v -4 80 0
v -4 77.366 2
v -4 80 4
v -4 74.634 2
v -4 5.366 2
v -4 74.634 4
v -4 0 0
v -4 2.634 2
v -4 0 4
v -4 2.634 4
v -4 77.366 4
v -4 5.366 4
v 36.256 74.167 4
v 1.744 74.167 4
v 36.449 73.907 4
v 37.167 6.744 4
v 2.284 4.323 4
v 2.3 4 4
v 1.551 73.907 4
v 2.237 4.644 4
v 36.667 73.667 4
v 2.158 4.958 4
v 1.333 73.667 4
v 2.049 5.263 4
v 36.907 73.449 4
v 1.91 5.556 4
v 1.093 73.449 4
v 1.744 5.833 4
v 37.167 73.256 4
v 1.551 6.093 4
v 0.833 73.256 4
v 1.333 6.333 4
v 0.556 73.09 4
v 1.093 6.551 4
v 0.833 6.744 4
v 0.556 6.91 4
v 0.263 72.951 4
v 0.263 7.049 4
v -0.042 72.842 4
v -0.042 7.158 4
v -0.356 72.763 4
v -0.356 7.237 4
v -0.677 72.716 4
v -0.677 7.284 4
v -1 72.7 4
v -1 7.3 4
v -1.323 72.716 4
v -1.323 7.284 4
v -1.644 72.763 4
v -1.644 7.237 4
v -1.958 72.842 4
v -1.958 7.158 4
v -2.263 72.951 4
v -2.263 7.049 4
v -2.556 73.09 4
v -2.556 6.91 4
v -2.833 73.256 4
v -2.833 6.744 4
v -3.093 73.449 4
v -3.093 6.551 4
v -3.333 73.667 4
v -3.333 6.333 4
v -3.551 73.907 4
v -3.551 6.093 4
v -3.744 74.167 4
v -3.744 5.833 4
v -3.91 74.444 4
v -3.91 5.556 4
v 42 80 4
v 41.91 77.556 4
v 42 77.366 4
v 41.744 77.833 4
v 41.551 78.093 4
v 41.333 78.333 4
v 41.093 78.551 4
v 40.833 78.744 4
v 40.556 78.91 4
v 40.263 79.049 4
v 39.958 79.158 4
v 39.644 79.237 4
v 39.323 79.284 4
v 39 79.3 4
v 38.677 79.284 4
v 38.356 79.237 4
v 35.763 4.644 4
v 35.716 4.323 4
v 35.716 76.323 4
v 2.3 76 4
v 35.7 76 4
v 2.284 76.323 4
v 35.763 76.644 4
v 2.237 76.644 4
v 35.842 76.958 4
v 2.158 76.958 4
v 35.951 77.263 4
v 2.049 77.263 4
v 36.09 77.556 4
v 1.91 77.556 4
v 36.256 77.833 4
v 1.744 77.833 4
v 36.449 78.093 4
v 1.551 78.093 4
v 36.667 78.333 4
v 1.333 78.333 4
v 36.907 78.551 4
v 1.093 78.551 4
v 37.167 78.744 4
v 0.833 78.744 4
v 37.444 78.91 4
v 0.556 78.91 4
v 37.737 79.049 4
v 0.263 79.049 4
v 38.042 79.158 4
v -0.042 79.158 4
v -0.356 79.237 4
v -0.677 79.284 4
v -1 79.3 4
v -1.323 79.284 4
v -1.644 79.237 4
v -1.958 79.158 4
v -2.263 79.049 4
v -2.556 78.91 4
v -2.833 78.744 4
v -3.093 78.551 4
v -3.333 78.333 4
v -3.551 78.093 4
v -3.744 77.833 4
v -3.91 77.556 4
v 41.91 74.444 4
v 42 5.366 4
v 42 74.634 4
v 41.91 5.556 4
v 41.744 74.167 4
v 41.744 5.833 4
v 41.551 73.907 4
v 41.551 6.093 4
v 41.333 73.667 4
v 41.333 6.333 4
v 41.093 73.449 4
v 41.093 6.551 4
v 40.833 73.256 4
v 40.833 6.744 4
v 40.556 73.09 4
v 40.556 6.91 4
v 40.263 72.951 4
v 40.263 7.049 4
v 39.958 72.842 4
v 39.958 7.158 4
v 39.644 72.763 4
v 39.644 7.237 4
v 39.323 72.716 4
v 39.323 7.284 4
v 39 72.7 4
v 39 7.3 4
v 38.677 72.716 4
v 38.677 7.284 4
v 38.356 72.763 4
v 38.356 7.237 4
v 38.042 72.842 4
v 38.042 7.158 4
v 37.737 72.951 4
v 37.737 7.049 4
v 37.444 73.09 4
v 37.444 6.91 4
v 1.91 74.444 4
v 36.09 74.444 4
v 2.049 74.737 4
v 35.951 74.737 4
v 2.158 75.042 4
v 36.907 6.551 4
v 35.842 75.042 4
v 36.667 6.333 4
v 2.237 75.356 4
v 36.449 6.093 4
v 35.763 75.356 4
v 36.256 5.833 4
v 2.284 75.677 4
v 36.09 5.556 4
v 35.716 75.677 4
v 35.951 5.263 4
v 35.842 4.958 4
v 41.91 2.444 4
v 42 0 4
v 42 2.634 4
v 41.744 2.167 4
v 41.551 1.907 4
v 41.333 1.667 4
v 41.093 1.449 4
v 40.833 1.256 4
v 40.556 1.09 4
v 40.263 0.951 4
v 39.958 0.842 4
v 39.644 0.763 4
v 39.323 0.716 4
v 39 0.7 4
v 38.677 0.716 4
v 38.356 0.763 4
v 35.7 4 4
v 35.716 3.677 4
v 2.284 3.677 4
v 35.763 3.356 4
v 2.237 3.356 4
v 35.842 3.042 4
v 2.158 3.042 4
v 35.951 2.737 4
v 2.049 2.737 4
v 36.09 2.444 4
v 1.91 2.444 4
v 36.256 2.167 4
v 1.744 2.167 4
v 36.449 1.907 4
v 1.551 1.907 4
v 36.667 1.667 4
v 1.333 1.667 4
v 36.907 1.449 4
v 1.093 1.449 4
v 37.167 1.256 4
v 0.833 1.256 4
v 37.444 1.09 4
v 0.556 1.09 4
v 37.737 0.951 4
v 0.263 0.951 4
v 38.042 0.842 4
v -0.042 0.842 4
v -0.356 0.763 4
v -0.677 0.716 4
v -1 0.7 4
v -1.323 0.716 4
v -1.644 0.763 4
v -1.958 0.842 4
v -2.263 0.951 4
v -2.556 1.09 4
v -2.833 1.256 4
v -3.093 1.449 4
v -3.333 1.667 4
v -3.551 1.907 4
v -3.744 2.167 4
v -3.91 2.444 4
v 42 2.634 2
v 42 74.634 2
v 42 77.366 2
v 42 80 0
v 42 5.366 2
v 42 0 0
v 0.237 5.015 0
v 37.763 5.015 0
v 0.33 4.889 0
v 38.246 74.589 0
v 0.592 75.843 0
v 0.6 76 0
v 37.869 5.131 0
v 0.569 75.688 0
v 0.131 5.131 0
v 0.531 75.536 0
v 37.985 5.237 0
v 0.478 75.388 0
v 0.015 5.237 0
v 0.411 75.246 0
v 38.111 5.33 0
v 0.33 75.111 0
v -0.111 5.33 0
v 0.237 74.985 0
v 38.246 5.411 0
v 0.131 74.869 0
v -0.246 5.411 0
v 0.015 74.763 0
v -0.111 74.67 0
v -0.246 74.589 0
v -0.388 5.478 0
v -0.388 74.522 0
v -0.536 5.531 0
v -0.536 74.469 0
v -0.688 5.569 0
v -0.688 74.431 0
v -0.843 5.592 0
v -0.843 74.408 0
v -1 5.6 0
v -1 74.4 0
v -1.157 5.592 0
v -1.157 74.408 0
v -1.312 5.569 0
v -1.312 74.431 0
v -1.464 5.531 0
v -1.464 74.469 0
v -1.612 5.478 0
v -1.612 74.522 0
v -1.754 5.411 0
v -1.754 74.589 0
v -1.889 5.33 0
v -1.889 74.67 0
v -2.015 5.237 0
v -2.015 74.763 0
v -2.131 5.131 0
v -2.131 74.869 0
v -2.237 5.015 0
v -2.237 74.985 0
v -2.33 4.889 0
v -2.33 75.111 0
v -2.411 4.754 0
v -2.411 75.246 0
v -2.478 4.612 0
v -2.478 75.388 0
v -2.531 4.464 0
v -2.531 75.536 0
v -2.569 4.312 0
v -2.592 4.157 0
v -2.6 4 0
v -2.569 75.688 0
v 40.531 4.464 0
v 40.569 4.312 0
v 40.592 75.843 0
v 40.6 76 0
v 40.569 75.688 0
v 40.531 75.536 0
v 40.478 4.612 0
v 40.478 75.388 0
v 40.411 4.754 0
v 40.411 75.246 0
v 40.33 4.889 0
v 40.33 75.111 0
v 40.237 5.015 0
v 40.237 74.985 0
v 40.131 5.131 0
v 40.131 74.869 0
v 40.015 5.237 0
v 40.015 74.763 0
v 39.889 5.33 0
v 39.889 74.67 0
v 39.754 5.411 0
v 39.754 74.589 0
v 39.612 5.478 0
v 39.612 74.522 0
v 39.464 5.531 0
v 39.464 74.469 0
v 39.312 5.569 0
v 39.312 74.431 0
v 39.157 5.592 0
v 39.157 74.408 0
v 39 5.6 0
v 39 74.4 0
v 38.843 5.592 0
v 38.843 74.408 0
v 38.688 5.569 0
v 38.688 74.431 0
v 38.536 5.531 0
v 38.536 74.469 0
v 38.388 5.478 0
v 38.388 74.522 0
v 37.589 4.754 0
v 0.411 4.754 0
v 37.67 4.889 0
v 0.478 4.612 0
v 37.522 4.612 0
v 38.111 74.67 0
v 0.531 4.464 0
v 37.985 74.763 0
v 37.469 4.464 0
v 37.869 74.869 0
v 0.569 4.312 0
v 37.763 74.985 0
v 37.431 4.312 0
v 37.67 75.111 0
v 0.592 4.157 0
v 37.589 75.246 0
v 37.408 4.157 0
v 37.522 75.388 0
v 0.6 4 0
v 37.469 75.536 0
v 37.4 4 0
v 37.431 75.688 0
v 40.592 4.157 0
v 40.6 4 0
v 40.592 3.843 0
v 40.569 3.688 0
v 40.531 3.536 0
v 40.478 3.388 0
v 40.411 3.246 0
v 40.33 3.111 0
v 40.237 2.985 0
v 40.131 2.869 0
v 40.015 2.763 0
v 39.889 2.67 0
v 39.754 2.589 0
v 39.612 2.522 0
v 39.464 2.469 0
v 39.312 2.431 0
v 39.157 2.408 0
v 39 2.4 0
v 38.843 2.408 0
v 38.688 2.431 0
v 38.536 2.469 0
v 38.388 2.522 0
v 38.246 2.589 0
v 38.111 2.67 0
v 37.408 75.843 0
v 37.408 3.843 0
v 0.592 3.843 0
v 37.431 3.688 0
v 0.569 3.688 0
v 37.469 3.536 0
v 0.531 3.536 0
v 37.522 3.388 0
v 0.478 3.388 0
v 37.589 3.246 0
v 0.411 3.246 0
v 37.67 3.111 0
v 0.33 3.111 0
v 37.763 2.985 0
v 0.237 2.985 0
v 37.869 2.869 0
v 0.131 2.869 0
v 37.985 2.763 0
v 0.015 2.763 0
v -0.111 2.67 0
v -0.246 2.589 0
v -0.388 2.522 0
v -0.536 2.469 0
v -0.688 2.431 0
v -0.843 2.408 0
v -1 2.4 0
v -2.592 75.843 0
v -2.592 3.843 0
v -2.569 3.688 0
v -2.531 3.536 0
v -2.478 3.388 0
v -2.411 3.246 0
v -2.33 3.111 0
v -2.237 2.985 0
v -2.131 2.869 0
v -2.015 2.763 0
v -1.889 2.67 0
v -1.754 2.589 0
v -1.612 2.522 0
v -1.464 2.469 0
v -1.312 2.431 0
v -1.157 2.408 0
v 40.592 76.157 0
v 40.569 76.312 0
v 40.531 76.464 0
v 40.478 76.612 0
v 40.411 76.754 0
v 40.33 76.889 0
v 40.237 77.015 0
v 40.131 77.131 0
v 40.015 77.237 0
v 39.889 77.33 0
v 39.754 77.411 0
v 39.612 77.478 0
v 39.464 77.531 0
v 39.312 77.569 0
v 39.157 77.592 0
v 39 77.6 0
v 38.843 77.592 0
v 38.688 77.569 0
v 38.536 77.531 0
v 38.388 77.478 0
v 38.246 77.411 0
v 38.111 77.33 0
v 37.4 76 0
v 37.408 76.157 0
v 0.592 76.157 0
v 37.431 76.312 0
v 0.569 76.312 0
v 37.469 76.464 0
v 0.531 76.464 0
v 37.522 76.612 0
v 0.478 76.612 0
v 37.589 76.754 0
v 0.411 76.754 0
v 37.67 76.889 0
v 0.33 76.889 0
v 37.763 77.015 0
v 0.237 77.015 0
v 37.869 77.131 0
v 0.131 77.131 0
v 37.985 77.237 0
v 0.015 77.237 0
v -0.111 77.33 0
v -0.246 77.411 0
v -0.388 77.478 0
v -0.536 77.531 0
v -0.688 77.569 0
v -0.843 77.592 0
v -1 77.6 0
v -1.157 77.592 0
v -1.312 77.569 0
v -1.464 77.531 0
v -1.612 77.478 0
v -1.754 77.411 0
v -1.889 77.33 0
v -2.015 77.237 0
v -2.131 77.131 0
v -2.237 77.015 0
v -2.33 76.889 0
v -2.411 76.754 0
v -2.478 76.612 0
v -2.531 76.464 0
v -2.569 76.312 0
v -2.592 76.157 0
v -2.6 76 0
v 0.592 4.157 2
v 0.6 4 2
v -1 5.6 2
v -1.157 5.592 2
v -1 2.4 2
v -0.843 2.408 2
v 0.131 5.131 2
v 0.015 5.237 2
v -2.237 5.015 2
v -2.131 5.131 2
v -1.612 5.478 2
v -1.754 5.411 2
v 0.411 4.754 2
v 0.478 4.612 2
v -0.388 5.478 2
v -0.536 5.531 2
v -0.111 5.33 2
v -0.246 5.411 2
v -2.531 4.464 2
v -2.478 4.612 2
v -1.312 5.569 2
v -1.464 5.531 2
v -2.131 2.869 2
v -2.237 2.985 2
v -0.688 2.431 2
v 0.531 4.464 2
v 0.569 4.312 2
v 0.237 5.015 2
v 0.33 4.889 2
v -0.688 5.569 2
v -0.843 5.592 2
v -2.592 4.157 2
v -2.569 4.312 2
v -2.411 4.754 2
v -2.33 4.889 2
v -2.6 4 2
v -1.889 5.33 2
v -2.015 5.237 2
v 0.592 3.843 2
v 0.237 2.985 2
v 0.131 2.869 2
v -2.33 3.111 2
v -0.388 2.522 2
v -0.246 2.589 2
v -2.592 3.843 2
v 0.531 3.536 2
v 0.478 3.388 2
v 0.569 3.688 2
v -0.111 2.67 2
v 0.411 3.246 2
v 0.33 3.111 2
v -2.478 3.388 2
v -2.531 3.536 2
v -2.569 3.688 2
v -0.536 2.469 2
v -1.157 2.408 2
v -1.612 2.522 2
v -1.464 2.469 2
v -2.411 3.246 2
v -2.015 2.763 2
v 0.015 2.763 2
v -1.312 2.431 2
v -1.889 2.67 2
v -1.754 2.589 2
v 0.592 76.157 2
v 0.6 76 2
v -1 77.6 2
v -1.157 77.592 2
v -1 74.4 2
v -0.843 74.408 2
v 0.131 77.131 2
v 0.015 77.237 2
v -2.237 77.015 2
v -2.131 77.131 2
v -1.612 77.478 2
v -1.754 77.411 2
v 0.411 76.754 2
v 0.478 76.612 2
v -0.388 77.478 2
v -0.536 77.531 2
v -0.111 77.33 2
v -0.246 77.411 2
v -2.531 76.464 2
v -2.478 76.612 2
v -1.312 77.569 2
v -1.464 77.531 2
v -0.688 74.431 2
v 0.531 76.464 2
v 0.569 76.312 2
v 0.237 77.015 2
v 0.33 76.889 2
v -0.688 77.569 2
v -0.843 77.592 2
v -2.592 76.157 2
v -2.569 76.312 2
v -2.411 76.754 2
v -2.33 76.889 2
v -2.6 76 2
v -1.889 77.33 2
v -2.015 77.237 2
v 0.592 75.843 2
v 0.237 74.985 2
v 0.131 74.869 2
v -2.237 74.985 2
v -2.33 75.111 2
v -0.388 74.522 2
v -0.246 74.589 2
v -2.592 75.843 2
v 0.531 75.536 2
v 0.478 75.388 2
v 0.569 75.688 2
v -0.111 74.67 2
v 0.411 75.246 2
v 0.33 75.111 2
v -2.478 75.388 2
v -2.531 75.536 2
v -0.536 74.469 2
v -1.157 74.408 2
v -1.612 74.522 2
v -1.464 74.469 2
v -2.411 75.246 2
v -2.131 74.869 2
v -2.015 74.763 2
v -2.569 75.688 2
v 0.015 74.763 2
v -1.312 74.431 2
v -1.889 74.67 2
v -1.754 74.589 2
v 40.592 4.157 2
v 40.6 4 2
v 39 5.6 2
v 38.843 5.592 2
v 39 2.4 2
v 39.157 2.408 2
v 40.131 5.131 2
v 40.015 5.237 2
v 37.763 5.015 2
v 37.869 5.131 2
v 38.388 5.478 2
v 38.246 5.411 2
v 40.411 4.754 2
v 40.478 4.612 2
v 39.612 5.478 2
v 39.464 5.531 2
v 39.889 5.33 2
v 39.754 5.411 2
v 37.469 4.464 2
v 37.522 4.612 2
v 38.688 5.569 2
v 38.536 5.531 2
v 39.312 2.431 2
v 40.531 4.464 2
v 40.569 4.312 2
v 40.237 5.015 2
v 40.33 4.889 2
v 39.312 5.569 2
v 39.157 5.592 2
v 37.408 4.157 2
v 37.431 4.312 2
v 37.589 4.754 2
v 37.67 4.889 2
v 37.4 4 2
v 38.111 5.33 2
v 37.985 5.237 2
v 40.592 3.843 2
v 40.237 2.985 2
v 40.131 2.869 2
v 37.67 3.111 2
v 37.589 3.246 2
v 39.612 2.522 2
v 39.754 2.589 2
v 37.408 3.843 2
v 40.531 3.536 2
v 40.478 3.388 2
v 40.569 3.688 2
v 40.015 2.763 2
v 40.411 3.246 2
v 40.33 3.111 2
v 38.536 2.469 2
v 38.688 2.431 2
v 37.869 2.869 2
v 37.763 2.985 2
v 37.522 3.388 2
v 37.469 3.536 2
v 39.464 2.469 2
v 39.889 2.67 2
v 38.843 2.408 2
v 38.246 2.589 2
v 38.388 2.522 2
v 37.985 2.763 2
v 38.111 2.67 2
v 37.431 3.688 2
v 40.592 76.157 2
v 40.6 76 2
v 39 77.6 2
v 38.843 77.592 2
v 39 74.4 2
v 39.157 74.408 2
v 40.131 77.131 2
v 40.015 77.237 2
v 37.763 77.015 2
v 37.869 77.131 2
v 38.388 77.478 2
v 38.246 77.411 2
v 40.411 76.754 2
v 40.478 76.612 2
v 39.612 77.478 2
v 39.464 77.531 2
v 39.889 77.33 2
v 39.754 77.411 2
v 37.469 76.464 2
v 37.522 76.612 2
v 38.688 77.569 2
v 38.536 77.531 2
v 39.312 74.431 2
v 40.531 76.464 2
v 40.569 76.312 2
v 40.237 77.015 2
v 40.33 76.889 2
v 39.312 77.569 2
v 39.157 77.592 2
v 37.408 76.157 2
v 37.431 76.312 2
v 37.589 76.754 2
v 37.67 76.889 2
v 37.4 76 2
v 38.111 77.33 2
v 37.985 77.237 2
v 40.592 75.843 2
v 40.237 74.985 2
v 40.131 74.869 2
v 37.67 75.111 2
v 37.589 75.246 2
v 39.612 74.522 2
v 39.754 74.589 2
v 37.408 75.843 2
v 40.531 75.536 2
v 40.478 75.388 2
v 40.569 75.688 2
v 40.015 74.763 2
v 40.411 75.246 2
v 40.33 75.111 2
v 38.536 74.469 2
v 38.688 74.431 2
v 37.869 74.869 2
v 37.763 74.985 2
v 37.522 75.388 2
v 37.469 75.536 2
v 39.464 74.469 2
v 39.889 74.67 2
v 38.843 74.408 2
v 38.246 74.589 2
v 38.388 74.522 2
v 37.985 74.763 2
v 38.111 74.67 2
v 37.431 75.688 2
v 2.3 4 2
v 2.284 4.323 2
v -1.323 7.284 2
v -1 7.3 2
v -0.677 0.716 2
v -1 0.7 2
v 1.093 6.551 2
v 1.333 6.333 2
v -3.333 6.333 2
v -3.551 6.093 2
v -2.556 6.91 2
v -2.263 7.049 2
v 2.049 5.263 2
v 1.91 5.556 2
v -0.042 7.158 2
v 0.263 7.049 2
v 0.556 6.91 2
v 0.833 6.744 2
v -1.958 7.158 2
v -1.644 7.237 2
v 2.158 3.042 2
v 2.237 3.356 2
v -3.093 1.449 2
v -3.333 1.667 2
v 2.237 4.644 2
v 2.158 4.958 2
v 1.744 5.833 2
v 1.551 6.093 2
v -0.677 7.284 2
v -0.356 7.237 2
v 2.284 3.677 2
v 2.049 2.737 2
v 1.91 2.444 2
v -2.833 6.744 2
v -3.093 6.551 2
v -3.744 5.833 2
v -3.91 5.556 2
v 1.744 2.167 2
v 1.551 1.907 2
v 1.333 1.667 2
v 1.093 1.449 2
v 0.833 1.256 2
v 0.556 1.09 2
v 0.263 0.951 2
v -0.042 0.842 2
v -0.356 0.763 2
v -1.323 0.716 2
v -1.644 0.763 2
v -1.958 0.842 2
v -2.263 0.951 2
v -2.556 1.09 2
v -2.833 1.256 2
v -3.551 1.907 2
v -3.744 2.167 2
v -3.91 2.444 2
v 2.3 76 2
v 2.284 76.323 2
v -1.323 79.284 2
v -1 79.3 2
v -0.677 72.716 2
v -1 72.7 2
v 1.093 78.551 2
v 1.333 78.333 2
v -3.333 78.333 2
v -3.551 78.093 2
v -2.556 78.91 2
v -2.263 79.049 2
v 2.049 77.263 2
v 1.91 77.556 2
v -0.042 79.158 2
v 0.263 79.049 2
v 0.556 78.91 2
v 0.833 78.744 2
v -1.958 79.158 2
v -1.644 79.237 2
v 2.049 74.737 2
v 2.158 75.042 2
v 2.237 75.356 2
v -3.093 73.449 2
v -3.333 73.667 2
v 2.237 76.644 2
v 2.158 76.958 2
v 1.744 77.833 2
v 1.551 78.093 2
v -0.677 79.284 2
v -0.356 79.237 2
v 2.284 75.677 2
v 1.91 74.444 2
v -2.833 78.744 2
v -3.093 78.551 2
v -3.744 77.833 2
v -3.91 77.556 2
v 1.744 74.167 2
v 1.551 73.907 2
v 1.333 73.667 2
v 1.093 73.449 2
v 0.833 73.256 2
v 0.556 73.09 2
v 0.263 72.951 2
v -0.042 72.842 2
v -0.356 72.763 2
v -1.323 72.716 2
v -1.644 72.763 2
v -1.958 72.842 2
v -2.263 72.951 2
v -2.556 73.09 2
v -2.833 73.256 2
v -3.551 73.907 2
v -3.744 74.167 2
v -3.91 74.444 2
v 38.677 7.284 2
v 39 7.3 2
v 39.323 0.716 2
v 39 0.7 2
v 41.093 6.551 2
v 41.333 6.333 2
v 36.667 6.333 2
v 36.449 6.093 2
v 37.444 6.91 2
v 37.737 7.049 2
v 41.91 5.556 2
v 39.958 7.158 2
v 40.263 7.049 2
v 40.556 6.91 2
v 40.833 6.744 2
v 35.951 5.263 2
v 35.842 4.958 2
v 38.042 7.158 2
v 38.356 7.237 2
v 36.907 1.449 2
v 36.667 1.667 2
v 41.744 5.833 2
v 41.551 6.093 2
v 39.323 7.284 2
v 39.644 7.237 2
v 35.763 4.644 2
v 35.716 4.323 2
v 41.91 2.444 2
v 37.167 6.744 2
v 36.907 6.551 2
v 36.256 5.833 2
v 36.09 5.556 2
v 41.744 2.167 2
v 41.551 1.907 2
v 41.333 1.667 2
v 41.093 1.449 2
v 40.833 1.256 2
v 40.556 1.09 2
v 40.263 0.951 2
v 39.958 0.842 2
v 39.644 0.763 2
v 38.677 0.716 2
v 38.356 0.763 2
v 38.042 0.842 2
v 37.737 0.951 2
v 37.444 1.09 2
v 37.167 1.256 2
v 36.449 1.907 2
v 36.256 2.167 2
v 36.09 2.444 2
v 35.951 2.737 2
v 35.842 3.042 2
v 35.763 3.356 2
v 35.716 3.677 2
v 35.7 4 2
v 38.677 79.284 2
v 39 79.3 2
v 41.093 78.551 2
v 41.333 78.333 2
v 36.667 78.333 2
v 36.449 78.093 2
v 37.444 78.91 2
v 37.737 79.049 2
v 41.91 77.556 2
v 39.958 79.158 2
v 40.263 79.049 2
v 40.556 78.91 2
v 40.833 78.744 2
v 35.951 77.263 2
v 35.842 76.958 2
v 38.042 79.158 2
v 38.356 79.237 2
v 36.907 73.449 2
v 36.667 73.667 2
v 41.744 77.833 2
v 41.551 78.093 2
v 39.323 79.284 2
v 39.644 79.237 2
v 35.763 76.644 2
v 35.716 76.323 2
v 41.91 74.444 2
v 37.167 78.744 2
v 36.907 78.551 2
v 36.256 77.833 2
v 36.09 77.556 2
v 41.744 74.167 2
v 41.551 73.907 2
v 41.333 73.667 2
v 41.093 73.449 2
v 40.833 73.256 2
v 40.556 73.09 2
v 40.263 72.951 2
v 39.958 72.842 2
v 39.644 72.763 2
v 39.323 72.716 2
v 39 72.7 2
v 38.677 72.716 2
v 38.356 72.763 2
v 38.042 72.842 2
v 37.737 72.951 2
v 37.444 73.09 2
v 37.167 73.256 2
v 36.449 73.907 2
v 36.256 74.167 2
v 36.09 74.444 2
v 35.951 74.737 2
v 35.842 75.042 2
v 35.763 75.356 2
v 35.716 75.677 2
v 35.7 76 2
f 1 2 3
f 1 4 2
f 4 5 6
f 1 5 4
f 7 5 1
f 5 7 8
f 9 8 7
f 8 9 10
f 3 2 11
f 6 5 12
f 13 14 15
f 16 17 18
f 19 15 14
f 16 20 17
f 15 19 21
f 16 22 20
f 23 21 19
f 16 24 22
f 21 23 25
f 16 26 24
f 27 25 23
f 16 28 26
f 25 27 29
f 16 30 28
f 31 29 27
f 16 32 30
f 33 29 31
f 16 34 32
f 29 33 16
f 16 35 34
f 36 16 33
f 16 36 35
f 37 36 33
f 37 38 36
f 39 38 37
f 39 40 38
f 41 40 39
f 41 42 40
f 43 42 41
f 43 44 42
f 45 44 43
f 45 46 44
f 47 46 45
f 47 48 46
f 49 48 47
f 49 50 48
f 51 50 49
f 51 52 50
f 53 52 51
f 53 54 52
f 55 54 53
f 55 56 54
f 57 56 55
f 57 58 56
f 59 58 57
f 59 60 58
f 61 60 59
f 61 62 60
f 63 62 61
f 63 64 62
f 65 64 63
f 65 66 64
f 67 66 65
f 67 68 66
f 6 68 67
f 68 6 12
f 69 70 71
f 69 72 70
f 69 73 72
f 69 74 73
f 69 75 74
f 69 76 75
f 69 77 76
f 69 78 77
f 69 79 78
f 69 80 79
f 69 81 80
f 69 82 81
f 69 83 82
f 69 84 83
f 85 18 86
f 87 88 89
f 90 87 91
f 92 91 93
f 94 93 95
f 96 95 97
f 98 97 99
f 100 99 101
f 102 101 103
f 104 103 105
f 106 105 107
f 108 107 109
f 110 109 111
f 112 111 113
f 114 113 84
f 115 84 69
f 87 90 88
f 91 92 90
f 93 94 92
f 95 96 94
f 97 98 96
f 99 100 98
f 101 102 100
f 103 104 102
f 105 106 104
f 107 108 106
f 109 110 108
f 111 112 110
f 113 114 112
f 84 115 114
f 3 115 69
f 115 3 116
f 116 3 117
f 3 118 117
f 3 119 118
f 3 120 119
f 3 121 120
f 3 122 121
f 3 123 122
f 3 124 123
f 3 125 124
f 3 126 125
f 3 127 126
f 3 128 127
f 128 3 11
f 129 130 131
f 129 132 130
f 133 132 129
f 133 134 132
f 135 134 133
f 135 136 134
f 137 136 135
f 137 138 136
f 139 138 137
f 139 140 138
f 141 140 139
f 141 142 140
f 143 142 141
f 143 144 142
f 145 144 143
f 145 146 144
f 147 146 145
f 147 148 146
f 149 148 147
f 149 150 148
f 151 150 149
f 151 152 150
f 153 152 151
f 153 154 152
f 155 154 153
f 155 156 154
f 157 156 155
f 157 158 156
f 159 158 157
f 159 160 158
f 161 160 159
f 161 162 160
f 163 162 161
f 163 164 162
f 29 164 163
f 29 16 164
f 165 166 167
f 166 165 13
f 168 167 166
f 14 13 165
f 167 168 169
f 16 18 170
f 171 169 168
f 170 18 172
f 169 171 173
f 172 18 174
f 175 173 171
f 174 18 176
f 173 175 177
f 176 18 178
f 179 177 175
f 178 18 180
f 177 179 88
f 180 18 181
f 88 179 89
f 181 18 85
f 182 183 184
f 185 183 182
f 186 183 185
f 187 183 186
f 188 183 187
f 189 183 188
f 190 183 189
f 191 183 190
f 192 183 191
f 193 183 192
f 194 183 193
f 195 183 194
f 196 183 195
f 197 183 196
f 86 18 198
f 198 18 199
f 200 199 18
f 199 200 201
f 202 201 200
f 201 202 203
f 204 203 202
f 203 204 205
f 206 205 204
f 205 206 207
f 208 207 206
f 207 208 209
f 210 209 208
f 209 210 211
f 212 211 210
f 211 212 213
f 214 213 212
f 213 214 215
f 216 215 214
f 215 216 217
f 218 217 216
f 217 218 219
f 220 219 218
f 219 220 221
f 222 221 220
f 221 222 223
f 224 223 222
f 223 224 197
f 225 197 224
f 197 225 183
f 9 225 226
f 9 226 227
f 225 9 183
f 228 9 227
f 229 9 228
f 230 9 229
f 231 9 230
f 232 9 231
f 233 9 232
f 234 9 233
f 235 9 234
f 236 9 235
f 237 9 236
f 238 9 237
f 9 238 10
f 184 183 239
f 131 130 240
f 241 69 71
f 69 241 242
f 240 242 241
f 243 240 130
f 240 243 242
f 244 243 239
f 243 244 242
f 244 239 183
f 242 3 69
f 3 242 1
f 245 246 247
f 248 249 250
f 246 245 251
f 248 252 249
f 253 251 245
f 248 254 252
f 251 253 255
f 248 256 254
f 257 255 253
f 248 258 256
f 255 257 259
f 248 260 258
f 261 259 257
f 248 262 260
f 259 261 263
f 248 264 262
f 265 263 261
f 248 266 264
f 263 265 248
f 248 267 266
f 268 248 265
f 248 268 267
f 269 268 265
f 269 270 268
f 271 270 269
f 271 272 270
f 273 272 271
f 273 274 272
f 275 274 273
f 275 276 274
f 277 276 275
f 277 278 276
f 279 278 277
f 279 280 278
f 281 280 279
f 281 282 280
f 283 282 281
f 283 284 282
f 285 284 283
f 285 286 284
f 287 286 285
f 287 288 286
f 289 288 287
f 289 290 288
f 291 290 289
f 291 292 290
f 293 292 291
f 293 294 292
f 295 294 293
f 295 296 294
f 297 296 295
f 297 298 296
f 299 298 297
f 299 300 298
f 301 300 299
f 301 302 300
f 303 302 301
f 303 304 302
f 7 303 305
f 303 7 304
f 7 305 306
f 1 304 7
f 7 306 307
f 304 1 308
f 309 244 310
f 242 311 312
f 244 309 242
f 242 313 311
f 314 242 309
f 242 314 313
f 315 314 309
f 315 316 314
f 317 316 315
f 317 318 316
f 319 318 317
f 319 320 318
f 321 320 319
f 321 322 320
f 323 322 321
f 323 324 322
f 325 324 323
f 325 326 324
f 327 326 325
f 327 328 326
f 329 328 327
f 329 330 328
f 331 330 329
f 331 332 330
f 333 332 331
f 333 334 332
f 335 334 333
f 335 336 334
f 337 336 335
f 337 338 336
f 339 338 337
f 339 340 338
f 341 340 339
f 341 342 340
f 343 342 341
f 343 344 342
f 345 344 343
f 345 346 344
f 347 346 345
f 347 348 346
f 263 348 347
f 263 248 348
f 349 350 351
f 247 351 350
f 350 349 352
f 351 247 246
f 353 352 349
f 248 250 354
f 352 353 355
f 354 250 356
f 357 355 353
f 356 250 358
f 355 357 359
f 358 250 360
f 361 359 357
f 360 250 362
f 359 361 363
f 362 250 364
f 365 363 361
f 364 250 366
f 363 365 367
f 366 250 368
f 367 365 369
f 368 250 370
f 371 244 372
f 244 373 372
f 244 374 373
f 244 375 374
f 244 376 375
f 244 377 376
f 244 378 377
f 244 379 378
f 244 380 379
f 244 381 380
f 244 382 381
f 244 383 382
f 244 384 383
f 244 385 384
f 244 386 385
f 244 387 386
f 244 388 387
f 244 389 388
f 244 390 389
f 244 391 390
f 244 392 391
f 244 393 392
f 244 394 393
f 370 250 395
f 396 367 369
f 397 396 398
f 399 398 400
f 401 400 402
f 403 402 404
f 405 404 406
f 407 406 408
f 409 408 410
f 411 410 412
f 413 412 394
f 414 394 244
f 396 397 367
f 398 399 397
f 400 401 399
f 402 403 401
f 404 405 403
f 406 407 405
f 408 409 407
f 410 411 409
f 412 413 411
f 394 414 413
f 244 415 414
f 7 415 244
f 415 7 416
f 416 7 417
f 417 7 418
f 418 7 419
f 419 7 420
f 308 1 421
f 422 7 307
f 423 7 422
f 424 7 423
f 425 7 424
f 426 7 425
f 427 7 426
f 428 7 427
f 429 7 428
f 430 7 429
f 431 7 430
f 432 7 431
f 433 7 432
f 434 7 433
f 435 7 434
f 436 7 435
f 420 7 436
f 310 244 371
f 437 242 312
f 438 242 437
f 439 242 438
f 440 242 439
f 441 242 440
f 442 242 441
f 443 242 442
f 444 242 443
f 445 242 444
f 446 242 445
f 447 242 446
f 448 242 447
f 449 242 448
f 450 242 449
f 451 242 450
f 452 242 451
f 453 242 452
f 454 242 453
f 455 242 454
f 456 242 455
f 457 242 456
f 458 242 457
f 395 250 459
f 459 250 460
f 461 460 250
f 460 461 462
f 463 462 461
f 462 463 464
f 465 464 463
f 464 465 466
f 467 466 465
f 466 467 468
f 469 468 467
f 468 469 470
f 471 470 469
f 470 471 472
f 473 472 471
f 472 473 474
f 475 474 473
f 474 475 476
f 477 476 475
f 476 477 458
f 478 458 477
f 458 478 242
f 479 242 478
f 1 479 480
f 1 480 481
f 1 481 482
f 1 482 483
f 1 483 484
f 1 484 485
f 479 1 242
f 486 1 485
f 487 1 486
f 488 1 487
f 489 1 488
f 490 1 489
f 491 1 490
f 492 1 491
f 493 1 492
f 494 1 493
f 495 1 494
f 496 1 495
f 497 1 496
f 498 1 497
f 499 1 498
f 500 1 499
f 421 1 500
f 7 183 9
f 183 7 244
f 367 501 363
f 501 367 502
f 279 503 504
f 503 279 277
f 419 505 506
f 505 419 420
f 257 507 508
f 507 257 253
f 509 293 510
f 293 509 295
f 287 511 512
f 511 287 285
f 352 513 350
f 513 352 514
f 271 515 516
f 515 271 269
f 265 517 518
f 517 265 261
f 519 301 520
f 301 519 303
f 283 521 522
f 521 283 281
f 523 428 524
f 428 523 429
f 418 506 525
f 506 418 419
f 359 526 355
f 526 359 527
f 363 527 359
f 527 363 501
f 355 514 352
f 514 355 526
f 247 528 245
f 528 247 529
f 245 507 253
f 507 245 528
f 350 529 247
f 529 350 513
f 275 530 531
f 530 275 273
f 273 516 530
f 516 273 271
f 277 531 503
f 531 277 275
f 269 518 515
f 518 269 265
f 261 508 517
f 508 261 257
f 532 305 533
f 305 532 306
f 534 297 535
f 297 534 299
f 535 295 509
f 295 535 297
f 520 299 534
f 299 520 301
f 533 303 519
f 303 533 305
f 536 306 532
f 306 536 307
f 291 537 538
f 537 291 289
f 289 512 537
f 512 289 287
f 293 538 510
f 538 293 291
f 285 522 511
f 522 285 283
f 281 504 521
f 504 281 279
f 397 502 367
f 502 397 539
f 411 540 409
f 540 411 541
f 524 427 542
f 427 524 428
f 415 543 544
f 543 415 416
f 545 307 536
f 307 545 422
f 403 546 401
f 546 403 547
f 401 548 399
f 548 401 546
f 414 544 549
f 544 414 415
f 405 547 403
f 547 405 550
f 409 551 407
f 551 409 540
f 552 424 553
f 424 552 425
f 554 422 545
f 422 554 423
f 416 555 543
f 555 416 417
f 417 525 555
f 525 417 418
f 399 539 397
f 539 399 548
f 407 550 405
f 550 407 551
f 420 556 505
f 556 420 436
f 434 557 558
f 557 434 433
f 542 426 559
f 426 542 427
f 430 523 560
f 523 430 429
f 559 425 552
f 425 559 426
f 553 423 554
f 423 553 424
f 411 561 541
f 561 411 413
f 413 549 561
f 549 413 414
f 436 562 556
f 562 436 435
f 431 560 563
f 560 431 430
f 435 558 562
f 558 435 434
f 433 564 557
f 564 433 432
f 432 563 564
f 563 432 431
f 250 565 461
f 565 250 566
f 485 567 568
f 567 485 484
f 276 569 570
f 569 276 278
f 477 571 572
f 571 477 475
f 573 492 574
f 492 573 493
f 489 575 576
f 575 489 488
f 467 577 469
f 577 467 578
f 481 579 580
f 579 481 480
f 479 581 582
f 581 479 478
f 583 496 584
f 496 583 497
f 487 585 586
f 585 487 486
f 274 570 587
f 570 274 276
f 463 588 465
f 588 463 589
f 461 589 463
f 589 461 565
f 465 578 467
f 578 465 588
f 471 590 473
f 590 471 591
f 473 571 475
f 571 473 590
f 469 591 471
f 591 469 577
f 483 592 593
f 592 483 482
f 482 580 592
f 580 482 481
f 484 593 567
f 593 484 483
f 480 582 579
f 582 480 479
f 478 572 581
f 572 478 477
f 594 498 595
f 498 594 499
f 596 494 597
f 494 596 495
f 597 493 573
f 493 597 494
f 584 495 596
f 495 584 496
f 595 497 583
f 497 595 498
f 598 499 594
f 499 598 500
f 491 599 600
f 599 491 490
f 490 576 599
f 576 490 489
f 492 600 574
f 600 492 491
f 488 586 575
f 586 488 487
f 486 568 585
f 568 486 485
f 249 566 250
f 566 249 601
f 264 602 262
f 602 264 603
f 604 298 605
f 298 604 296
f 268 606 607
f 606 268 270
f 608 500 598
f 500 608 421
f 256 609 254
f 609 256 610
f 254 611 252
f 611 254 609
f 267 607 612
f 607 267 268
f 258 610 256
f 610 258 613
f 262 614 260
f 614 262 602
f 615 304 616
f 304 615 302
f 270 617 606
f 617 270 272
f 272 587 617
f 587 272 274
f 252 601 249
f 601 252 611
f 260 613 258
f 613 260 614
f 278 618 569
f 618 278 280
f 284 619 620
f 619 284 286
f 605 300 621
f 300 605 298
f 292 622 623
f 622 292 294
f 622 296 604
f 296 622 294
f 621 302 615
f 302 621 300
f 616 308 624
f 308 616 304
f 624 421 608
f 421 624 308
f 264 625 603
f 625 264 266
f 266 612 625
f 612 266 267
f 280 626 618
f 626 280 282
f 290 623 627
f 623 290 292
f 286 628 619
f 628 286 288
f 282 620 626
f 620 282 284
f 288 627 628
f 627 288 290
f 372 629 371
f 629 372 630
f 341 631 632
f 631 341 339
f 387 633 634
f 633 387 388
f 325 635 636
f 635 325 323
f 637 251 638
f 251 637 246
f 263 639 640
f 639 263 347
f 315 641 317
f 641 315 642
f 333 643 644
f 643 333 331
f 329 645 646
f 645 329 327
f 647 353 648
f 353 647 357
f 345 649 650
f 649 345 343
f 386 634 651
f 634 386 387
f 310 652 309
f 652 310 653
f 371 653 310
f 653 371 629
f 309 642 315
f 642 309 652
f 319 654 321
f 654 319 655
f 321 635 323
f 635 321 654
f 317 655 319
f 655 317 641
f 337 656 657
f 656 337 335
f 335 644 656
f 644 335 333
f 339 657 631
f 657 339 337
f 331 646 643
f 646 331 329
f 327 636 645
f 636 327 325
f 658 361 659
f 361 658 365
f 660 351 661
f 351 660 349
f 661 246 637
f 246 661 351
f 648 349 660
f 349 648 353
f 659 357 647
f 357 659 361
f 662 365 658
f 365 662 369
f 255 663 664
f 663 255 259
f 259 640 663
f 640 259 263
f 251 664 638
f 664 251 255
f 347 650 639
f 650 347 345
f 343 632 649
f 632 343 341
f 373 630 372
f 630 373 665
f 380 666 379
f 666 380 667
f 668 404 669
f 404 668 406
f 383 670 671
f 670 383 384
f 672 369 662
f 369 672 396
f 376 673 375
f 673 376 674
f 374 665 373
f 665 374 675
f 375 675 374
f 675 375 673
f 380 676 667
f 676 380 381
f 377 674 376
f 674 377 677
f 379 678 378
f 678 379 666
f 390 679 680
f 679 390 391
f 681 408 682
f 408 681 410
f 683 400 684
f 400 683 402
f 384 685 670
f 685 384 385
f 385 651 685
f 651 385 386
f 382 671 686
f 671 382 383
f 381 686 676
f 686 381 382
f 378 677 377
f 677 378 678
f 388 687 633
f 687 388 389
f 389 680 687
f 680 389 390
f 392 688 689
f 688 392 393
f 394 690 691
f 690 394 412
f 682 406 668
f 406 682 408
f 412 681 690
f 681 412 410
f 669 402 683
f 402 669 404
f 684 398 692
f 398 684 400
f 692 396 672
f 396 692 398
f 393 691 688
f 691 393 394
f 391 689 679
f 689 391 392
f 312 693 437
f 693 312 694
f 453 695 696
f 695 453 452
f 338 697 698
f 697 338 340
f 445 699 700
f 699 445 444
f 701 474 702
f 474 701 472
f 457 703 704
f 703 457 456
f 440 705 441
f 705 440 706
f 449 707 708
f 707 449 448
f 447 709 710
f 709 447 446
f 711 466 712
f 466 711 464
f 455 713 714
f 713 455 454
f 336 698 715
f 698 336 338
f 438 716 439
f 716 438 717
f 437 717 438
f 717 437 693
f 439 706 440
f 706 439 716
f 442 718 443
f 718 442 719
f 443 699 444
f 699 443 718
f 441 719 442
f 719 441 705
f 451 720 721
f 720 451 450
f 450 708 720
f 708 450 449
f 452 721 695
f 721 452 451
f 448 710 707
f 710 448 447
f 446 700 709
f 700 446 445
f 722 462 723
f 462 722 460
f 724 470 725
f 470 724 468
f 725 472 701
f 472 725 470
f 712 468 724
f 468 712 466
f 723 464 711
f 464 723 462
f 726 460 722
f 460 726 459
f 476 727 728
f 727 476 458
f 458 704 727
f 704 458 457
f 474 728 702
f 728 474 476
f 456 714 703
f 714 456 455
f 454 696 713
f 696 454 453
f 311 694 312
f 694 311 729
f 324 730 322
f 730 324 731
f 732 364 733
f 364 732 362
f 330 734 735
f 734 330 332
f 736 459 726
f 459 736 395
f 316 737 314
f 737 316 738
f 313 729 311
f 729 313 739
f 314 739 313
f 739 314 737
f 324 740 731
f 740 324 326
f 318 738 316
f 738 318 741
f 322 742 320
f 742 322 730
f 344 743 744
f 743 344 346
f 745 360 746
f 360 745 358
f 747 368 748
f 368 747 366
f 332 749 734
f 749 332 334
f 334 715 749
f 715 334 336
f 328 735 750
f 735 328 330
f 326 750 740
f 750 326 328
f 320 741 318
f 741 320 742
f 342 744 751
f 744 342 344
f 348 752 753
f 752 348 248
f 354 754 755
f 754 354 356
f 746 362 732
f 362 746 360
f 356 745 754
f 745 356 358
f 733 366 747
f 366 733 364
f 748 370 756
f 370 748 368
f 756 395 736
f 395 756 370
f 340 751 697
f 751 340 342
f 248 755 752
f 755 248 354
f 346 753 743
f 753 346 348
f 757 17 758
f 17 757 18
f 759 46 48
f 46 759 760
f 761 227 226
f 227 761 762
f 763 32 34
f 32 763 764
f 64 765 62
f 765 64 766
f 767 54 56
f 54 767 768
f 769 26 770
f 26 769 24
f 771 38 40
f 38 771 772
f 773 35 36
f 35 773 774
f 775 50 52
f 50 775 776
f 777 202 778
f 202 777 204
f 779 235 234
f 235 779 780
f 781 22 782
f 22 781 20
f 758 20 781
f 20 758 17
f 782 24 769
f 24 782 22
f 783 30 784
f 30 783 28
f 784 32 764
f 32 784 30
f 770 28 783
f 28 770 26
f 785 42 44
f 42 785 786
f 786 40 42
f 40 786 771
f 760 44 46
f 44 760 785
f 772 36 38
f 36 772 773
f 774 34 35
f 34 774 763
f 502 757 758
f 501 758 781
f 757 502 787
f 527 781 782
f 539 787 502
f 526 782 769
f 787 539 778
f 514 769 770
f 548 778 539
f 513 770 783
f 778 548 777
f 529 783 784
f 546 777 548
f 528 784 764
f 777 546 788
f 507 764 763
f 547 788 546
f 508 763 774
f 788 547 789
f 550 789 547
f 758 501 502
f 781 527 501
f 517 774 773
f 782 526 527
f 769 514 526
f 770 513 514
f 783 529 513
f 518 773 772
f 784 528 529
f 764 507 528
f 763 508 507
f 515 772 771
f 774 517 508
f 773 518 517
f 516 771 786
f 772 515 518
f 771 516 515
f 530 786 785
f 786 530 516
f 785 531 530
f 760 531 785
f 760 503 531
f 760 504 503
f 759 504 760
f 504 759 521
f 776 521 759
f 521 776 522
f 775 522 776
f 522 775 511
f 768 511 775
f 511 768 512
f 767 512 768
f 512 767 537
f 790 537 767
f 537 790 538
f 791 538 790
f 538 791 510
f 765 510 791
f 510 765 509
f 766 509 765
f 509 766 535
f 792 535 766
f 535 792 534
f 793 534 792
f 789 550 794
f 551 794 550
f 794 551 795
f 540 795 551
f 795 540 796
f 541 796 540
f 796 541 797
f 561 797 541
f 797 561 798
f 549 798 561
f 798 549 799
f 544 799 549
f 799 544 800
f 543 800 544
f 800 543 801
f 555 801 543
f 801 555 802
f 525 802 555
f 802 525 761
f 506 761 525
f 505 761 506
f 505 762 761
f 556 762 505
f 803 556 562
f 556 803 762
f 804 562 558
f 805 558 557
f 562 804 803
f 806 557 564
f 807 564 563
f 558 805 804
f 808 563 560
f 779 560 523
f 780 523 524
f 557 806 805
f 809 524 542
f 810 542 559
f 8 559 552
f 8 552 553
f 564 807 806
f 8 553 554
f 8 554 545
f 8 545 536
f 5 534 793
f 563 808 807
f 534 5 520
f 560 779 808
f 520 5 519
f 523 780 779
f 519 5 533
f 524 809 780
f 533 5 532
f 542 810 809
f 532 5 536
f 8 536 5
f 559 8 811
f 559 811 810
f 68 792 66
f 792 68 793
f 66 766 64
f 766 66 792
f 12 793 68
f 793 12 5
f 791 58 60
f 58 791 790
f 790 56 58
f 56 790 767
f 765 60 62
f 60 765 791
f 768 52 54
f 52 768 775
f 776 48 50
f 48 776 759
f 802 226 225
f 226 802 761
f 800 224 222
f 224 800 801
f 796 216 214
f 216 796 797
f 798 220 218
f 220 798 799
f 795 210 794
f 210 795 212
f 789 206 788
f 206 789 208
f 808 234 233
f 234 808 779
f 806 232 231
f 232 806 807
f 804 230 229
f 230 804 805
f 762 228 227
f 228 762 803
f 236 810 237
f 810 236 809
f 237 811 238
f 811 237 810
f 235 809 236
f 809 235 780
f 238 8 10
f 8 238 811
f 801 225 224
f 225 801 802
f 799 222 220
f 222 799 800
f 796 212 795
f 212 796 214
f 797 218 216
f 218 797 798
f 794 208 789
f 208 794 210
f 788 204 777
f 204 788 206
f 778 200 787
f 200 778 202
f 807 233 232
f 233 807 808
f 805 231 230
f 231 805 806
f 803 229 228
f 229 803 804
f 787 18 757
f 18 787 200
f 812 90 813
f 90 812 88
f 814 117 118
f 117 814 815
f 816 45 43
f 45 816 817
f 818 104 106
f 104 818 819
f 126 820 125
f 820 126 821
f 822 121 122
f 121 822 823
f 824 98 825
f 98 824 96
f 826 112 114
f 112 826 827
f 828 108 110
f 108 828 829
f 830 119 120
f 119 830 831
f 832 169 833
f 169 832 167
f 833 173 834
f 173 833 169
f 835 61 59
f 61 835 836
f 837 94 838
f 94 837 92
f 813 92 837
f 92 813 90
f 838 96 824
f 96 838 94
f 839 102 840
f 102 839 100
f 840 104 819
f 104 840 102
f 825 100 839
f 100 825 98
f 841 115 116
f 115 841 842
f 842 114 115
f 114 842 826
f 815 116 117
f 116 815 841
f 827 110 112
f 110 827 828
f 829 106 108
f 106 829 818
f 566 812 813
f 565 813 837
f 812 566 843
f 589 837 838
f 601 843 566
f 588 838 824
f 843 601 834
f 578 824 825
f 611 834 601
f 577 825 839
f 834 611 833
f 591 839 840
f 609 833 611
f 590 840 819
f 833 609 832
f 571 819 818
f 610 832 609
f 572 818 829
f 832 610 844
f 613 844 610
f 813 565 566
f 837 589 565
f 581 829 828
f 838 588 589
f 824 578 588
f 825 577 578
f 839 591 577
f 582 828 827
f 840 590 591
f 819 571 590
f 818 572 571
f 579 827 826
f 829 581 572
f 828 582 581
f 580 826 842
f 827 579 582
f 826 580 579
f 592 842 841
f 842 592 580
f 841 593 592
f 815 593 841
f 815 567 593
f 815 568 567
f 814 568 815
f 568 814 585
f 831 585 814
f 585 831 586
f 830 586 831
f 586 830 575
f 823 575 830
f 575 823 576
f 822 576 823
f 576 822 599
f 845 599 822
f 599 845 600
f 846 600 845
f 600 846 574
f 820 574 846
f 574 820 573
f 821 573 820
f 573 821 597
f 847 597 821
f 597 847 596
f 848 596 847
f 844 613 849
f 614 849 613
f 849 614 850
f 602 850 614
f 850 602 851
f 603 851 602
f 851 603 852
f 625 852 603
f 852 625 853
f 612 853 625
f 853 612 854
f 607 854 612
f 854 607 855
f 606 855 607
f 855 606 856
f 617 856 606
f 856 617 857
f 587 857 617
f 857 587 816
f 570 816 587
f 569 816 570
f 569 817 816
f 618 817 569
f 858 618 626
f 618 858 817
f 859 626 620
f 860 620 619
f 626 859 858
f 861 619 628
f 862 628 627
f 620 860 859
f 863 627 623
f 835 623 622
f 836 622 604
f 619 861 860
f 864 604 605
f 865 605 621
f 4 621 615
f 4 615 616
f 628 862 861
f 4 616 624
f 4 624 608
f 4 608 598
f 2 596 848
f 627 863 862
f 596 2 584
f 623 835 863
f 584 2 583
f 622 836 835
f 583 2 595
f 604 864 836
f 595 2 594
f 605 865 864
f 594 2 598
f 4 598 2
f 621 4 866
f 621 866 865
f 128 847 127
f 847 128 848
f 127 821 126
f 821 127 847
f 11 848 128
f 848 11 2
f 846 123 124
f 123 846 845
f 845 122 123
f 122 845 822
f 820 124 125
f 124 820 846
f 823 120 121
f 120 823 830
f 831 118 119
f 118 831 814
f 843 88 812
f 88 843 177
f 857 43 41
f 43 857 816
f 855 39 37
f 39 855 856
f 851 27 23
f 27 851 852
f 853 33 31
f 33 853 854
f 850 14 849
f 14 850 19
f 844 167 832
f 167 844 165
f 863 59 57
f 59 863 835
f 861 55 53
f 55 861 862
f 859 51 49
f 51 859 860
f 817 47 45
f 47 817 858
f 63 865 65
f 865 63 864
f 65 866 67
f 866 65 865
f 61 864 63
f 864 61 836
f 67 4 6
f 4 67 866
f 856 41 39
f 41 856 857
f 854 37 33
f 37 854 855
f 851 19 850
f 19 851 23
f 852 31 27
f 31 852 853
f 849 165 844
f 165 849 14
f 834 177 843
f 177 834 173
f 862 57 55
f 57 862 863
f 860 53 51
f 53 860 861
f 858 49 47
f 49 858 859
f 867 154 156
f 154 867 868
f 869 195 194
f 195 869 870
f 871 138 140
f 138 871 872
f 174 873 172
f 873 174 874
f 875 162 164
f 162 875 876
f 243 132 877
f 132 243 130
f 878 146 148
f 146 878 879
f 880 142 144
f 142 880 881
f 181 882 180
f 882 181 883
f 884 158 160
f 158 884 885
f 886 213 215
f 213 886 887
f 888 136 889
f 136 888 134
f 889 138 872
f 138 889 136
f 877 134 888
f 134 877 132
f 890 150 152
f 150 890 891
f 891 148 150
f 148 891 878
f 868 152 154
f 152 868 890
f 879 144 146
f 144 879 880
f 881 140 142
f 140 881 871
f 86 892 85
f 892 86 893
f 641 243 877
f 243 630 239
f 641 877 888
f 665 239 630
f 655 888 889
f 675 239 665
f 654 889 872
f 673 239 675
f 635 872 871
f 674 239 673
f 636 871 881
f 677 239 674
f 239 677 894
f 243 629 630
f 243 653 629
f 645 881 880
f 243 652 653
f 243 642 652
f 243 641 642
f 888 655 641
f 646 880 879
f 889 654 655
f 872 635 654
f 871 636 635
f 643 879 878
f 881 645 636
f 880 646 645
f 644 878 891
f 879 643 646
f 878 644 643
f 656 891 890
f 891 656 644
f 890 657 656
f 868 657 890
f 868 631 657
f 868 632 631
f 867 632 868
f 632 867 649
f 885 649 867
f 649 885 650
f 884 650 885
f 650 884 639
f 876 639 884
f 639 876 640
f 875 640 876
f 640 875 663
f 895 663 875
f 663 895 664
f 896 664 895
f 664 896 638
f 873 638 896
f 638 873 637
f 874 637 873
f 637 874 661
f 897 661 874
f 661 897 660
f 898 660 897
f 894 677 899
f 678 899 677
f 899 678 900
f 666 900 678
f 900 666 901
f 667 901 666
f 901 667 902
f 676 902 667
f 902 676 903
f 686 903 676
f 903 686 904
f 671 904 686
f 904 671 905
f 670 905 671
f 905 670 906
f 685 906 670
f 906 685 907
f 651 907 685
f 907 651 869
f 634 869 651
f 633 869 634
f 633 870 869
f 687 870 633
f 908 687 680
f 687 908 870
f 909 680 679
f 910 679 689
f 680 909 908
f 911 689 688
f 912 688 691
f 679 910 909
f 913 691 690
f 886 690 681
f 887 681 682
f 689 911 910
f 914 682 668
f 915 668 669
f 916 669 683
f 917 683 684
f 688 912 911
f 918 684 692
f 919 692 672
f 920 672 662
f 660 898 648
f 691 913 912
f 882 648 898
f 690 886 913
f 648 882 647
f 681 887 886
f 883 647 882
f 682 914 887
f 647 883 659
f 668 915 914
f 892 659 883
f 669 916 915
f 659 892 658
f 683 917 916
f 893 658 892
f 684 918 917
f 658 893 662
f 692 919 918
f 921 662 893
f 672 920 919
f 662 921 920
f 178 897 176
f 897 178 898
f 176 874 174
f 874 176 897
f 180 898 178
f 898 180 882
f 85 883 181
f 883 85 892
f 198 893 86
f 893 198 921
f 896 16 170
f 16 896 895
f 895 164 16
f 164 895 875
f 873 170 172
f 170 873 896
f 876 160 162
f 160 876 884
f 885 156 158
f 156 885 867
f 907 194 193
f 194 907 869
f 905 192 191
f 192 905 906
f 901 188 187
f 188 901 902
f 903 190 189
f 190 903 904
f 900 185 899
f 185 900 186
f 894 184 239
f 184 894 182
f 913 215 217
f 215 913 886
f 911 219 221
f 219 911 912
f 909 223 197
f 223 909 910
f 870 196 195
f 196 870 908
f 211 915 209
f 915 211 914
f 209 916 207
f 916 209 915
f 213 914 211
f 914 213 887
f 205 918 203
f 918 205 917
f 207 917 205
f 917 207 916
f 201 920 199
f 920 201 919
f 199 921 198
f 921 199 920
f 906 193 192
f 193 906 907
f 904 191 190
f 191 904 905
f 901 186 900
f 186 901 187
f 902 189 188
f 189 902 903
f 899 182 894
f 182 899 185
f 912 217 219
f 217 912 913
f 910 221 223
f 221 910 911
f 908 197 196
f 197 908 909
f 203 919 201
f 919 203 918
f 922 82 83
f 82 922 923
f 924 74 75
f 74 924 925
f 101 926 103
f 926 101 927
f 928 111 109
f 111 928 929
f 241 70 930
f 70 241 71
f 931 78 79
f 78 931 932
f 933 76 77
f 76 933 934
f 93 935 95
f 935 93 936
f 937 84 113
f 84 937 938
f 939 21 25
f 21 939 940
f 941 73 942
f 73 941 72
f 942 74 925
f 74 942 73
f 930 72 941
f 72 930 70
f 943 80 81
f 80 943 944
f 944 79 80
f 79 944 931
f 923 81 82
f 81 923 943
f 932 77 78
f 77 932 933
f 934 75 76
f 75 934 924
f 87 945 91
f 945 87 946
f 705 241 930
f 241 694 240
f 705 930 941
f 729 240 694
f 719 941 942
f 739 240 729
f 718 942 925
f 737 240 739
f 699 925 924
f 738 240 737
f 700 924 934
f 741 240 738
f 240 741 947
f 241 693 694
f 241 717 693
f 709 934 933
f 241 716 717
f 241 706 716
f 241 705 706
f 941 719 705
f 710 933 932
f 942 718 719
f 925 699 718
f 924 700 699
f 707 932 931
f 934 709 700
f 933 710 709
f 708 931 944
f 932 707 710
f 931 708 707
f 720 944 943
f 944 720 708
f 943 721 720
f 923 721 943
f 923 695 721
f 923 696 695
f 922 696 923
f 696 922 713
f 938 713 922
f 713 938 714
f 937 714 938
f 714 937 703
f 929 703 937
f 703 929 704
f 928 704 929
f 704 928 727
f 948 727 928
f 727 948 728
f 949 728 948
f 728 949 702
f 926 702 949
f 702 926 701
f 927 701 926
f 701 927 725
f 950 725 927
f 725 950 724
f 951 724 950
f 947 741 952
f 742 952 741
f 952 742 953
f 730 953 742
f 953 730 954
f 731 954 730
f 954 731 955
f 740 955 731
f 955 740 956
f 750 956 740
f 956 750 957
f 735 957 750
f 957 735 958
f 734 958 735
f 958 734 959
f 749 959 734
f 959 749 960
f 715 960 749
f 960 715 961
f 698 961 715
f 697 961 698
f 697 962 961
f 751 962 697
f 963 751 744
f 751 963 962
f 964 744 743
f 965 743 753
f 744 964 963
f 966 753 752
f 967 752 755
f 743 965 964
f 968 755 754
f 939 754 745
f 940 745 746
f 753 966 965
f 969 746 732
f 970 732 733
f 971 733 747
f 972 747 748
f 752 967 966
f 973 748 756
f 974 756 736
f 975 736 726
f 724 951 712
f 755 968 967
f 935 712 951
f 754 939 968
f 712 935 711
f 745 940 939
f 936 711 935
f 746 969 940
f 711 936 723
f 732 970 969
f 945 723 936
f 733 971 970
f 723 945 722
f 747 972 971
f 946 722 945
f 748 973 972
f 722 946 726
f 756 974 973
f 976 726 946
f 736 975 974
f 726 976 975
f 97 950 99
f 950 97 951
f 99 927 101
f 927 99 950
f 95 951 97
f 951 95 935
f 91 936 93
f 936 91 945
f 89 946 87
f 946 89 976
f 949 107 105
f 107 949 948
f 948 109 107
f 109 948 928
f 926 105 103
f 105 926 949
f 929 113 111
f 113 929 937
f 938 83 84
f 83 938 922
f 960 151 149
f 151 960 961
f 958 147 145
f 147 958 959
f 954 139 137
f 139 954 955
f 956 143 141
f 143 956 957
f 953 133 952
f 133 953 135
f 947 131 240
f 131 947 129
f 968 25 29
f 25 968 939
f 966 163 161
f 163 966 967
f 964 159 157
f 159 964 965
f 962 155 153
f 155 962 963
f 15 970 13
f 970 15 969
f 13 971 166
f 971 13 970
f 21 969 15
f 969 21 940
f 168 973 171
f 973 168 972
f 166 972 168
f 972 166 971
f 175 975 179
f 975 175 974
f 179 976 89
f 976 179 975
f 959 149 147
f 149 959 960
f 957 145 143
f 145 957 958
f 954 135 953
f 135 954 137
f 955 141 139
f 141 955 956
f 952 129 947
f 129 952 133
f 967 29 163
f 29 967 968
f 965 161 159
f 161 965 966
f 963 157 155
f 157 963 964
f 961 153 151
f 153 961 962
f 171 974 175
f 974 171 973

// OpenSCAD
h = 4;

module furoPorca(r) {
    cylinder(h=40, r=r, $fn=64);
}

module furacao1(fh, fp) {
    translate([-1,4,fh])
    furoPorca(fp);
}

module furacao2(fh, fp) {
    onde=40-1;
    translate([onde,4,fh])
    furoPorca(fp);
}

module cuboPrincipal() {
    translate([-4,0,0])
    cube([46, 80, h]);
}

difference(){
    cuboPrincipal();

    furacao1(-1, 1.6);
    translate([0,72,0])
    furacao1(-1, 1.6);
    furacao2(-1, 1.6);
    translate([0,72,0])
    furacao2(-1, 1.6);
    
    cabeca=3.3;
    furacao1(2, cabeca);
    translate([0,72,0])
    furacao1(2, cabeca);
    furacao2(2, cabeca);
    translate([0,72,0])
    furacao2(2, cabeca);
}
